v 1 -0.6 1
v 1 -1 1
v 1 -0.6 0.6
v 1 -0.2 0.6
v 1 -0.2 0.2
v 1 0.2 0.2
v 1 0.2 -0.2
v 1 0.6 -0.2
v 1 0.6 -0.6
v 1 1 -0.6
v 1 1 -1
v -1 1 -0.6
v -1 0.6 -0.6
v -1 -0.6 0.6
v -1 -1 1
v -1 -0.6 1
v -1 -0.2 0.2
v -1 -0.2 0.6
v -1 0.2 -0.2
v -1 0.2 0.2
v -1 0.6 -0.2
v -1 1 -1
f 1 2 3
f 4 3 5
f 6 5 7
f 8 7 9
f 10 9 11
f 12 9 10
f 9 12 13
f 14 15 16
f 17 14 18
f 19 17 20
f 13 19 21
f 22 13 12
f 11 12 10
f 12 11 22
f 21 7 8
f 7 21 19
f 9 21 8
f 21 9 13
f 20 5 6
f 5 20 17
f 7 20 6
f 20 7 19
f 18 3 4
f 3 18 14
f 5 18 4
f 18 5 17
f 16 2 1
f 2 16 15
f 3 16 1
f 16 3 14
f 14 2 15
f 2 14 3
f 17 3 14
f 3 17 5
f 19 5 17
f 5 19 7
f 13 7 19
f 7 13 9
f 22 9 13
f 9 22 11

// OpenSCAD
// A thin staircase with a settable number of steps

module stairs_thin(steps){
    difference(){
        //Steps
        for (i=[0:steps-1], h=i+1/2) 
            translate([0, 2*(steps/2 - h)/steps, -2*(steps/2 - h)/steps])
                cube([2,2/steps,2/steps], center=true);
        // Main ramp
        rotate([0,90,0])
            linear_extrude(height = 2, center=true) 
                polygon([
                        [1, 1],
                        [1, -1],
                        [-1, -1],
                ]);

    }
}

stairs_thin(steps=5);
